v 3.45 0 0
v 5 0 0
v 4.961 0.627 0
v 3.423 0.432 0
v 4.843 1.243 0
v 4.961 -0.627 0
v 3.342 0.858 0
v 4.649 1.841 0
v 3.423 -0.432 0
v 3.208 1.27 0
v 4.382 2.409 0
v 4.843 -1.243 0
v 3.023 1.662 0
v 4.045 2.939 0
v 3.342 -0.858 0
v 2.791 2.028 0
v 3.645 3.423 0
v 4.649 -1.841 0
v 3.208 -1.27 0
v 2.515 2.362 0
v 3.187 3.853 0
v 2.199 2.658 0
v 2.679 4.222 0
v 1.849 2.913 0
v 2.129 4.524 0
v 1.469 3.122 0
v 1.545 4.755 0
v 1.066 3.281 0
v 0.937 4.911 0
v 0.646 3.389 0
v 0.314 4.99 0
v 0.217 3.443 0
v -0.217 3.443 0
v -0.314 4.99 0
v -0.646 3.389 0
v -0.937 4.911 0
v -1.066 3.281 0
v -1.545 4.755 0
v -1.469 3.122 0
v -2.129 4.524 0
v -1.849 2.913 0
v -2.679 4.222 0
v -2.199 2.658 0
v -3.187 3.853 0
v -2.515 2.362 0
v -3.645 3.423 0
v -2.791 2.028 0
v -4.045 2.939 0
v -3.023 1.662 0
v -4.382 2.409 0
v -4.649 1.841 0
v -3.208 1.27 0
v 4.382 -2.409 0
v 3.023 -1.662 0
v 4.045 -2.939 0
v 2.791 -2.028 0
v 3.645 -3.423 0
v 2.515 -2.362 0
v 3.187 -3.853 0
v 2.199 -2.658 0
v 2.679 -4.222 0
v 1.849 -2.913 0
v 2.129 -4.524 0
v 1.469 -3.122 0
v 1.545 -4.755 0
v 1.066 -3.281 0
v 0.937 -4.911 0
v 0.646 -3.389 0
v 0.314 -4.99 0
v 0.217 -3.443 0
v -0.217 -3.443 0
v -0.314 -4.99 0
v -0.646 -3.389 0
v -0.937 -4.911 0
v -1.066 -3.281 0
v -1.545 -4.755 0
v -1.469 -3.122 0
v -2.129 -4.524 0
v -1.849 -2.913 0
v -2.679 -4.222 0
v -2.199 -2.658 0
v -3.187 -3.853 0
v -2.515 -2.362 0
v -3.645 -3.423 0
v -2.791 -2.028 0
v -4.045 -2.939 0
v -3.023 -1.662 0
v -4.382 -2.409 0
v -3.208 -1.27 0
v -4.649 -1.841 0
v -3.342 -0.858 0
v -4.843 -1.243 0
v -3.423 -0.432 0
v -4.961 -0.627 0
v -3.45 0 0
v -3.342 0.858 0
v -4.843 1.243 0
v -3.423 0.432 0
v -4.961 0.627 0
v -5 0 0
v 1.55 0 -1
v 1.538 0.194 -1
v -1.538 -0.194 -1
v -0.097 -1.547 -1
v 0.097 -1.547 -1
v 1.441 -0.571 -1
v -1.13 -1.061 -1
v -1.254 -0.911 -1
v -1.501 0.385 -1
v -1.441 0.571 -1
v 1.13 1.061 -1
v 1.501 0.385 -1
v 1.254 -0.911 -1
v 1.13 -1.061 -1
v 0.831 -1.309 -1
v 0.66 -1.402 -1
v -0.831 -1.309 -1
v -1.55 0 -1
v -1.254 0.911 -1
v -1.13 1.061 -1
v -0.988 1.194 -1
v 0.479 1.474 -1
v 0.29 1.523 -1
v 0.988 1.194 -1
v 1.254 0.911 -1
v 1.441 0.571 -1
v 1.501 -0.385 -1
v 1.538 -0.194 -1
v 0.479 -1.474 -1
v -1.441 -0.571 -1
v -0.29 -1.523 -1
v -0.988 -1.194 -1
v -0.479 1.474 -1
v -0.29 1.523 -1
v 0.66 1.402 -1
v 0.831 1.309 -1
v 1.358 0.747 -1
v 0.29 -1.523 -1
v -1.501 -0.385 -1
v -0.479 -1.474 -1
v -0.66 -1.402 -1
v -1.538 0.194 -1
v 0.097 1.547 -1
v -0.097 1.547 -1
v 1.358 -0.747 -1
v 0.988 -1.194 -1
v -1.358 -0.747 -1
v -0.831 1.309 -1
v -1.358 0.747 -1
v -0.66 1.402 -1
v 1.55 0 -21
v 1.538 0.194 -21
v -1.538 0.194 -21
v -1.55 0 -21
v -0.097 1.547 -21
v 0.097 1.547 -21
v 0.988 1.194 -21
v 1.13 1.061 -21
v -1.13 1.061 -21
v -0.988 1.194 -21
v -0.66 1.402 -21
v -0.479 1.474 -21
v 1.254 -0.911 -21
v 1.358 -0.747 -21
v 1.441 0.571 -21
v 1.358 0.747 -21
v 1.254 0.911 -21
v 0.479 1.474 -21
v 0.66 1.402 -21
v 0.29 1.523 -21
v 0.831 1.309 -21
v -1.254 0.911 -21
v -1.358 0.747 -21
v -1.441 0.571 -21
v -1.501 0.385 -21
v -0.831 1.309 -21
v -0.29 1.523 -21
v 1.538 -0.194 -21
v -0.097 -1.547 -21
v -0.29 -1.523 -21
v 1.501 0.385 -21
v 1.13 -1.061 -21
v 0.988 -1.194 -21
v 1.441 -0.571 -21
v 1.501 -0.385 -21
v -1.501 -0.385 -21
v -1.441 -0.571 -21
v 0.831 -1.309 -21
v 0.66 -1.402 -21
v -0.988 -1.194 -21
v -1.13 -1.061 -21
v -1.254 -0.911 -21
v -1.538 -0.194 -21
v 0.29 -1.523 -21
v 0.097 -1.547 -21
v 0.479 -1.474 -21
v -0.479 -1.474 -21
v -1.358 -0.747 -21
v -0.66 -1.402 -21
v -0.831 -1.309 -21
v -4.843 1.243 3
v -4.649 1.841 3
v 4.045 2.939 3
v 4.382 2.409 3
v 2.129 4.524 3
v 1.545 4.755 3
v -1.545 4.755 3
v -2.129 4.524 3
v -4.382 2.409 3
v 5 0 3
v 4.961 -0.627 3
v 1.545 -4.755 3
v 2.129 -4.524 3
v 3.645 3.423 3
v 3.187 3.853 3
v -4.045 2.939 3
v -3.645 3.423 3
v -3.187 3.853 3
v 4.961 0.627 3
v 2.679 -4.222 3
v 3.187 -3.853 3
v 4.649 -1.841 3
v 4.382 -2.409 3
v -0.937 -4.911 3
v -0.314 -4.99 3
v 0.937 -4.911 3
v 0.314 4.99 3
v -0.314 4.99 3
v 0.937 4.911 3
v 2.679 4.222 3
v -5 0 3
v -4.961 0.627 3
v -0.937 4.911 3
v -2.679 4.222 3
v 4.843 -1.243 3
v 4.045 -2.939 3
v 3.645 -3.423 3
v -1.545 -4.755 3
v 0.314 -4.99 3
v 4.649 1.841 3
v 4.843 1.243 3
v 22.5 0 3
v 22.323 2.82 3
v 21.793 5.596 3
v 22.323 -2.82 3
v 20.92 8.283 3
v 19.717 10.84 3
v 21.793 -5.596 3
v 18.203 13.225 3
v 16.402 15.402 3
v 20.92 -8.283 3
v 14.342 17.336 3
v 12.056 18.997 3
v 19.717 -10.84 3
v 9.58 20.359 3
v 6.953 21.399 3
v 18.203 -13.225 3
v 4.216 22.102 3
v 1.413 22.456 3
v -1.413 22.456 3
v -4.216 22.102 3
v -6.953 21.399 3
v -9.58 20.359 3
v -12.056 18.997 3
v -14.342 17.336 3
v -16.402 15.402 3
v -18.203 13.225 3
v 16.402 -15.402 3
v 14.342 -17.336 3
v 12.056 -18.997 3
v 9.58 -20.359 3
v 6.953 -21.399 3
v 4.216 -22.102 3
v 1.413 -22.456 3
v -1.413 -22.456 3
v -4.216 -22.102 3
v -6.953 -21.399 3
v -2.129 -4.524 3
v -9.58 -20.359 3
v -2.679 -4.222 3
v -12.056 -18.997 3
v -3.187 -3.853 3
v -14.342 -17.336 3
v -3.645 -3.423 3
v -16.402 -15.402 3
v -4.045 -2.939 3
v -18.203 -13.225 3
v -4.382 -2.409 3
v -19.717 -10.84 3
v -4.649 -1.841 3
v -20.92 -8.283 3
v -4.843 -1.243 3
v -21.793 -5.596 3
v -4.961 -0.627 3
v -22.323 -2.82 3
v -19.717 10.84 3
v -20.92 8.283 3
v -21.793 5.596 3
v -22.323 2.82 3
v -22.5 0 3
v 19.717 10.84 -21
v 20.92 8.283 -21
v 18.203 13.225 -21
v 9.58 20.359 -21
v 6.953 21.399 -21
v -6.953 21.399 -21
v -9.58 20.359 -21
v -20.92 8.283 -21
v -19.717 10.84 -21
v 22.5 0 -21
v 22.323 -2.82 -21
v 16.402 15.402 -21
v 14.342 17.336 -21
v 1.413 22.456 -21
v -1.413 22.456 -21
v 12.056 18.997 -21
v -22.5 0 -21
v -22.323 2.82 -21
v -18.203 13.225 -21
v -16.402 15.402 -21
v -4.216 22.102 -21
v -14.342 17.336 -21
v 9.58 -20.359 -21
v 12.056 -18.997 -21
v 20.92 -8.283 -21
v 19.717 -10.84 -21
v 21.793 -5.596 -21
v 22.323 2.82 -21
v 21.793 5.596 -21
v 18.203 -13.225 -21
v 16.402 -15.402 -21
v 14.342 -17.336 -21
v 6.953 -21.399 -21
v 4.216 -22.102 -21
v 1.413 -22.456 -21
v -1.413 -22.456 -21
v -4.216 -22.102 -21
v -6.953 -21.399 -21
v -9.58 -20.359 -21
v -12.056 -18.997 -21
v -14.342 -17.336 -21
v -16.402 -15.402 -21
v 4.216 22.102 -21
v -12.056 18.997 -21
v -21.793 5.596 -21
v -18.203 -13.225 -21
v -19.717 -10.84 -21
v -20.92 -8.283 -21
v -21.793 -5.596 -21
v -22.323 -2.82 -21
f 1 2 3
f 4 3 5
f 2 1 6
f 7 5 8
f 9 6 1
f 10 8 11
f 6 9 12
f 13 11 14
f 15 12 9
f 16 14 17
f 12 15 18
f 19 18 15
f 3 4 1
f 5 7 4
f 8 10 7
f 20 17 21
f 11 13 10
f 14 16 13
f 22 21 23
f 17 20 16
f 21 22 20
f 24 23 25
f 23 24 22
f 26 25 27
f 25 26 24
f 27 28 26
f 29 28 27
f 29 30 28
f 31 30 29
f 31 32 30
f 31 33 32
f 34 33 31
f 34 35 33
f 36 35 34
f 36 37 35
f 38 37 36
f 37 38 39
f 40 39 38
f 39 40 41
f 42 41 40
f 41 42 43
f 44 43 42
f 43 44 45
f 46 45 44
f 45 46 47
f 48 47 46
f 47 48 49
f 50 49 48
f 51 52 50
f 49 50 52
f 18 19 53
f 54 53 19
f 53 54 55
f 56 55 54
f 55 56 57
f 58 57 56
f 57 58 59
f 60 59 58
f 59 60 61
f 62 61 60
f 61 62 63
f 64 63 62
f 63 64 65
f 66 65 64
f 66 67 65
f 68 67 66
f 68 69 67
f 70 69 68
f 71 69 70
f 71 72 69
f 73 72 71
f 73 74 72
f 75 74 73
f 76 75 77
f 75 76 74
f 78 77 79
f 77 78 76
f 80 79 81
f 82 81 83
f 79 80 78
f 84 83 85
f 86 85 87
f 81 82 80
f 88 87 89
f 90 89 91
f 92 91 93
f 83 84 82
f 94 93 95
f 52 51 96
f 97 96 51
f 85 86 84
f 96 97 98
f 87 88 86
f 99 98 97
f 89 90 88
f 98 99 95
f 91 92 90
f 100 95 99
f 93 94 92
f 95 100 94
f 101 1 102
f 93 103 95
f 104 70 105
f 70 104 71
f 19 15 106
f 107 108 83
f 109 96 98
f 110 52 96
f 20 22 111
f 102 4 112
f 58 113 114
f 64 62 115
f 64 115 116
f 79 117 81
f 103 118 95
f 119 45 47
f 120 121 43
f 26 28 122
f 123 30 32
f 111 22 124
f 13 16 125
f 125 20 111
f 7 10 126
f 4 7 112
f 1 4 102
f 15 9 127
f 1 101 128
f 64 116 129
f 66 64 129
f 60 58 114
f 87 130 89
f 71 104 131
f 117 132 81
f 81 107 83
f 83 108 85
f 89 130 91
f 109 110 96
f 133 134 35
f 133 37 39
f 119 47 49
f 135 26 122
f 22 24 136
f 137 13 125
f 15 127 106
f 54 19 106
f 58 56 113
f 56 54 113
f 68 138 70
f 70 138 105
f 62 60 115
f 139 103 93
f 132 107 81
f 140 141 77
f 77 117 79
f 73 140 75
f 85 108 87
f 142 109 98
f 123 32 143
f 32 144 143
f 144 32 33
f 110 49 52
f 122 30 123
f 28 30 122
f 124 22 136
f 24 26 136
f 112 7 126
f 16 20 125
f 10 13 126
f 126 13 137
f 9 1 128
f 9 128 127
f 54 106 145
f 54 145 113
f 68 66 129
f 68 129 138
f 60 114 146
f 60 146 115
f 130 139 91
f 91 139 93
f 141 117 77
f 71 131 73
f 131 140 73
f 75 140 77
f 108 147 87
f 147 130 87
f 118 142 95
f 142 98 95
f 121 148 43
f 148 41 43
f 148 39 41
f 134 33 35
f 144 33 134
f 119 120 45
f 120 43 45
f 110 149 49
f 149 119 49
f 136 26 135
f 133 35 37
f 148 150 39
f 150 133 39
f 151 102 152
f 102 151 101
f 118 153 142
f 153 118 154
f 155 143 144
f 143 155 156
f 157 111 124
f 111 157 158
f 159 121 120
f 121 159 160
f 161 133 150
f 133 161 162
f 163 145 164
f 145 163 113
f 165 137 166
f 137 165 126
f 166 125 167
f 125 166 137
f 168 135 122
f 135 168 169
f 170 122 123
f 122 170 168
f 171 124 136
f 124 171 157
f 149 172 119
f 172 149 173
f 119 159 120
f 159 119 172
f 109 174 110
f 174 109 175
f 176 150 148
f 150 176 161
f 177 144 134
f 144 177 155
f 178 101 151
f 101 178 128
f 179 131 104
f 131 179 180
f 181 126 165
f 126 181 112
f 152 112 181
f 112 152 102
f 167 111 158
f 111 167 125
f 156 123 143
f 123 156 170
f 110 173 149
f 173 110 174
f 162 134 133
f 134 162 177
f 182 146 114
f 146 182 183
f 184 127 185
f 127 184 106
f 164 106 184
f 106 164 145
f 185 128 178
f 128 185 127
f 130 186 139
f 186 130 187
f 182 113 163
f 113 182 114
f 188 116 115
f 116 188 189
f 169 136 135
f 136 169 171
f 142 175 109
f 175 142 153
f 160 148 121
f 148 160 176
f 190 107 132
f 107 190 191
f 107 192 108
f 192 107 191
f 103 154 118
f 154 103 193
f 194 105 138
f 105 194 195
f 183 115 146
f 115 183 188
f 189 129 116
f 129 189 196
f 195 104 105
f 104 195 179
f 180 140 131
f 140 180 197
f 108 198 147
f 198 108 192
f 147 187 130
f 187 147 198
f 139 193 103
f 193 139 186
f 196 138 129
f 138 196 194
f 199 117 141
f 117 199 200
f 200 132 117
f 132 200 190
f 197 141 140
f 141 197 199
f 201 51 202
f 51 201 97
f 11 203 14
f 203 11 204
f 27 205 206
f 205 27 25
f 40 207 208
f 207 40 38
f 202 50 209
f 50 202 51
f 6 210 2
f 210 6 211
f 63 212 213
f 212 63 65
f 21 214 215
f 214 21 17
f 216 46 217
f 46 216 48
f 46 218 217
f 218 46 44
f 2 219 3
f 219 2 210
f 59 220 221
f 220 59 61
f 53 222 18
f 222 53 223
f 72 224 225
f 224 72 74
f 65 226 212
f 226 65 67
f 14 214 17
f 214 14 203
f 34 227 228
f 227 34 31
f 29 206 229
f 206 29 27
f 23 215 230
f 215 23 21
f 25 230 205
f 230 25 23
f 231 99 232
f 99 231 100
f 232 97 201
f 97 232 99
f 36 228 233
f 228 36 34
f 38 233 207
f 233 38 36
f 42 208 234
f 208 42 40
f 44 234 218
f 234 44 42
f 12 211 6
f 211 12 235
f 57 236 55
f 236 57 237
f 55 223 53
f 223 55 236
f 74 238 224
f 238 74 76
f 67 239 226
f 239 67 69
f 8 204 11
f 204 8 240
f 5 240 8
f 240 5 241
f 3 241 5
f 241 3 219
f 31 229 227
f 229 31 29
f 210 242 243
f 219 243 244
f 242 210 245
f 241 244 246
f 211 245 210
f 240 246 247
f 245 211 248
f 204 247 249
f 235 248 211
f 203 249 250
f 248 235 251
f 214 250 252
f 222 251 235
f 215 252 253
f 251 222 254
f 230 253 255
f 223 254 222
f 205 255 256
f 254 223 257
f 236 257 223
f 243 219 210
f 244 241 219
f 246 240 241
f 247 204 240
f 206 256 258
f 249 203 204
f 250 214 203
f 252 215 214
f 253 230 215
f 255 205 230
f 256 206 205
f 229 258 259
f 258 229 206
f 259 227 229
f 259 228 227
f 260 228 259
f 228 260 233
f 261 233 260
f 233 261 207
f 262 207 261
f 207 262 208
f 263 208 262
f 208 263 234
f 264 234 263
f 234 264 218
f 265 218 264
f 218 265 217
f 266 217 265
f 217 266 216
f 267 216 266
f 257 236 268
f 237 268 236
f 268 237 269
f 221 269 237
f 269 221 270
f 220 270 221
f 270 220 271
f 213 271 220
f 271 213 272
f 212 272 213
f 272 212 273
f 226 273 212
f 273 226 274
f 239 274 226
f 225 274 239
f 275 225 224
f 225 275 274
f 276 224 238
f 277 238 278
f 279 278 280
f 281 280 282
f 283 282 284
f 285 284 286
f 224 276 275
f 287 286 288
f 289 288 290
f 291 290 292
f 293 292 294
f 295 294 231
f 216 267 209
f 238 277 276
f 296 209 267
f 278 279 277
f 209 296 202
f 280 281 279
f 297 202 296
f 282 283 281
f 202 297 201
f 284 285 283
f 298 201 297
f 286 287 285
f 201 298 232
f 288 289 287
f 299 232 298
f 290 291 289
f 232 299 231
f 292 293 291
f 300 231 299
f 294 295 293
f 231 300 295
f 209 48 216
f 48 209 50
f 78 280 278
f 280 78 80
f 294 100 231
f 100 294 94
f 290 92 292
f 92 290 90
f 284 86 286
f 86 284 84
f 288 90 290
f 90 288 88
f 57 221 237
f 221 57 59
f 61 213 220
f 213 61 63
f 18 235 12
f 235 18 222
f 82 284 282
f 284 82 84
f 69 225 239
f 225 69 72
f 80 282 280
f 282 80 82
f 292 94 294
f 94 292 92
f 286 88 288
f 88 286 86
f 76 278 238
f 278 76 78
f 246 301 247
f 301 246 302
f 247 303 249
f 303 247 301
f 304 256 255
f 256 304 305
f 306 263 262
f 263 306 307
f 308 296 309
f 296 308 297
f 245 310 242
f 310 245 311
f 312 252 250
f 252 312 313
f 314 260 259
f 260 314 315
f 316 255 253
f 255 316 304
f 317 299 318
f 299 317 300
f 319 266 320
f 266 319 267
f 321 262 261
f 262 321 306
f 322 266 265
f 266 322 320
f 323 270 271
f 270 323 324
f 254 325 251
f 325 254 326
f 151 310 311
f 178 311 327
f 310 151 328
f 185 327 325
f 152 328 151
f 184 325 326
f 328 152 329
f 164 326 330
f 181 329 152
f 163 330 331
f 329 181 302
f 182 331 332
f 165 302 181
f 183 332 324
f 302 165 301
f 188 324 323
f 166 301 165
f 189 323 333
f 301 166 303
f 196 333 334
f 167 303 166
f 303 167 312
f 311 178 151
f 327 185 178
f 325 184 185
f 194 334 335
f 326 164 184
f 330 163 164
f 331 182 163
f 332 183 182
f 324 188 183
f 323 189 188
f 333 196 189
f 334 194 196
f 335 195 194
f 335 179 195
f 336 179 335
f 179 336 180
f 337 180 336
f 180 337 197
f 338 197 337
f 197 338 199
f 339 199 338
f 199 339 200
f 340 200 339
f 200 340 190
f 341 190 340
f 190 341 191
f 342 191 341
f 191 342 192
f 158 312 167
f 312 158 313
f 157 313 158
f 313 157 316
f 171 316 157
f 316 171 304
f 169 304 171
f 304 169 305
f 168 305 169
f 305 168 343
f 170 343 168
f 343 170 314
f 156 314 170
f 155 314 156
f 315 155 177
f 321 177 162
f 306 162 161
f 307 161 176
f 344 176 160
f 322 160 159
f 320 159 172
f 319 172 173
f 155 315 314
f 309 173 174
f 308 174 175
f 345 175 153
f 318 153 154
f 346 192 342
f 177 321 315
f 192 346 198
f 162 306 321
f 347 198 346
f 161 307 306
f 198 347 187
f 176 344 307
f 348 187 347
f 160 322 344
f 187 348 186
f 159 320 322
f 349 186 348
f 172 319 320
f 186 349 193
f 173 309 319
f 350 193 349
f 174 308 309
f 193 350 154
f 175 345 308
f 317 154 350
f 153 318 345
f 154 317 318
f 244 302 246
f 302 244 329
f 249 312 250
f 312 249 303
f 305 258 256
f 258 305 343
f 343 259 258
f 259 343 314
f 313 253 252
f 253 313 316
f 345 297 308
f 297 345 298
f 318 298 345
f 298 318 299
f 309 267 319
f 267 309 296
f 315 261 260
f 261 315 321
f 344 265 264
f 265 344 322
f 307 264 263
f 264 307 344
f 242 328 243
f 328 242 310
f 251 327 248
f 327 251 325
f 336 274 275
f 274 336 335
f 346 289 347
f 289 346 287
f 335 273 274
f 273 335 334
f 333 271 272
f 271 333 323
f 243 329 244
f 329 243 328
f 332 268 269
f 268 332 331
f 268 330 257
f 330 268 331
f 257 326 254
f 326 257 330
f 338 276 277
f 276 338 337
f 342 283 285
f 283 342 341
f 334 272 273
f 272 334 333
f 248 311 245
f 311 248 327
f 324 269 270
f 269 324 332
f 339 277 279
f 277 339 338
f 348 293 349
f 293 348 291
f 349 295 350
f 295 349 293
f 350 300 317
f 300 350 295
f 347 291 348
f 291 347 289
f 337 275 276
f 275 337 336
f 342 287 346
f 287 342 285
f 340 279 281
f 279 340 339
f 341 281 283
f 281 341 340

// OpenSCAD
$fn = 50;

difference() {
	union() {
		translate(v = [0, 0, -21.0]) {
			cylinder(h = 24, r = 22.5);
		}
	}
	union() {
		translate(v = [0, 0, 0]) {
			rotate(a = [0, 0, 0]) {
				difference() {
					union() {
						translate(v = [0, 0, -24.0]) {
							cylinder(h = 24, r = 1.25);
						}
						translate(v = [0, 0, -1.0]) {
							cylinder(h = 1.0, r1 = 1.55, r2 = 3.45);
						}
						translate(v = [0, 0, -24.0]) {
							cylinder(h = 24, r = 1.55);
						}
						translate(v = [0, 0, -24.0]) {
							cylinder(h = 24, r = 1.25);
						}
					}
					union();
				}
			}
		}
		#cylinder(h = 3, r = 5.0);
	}
}
